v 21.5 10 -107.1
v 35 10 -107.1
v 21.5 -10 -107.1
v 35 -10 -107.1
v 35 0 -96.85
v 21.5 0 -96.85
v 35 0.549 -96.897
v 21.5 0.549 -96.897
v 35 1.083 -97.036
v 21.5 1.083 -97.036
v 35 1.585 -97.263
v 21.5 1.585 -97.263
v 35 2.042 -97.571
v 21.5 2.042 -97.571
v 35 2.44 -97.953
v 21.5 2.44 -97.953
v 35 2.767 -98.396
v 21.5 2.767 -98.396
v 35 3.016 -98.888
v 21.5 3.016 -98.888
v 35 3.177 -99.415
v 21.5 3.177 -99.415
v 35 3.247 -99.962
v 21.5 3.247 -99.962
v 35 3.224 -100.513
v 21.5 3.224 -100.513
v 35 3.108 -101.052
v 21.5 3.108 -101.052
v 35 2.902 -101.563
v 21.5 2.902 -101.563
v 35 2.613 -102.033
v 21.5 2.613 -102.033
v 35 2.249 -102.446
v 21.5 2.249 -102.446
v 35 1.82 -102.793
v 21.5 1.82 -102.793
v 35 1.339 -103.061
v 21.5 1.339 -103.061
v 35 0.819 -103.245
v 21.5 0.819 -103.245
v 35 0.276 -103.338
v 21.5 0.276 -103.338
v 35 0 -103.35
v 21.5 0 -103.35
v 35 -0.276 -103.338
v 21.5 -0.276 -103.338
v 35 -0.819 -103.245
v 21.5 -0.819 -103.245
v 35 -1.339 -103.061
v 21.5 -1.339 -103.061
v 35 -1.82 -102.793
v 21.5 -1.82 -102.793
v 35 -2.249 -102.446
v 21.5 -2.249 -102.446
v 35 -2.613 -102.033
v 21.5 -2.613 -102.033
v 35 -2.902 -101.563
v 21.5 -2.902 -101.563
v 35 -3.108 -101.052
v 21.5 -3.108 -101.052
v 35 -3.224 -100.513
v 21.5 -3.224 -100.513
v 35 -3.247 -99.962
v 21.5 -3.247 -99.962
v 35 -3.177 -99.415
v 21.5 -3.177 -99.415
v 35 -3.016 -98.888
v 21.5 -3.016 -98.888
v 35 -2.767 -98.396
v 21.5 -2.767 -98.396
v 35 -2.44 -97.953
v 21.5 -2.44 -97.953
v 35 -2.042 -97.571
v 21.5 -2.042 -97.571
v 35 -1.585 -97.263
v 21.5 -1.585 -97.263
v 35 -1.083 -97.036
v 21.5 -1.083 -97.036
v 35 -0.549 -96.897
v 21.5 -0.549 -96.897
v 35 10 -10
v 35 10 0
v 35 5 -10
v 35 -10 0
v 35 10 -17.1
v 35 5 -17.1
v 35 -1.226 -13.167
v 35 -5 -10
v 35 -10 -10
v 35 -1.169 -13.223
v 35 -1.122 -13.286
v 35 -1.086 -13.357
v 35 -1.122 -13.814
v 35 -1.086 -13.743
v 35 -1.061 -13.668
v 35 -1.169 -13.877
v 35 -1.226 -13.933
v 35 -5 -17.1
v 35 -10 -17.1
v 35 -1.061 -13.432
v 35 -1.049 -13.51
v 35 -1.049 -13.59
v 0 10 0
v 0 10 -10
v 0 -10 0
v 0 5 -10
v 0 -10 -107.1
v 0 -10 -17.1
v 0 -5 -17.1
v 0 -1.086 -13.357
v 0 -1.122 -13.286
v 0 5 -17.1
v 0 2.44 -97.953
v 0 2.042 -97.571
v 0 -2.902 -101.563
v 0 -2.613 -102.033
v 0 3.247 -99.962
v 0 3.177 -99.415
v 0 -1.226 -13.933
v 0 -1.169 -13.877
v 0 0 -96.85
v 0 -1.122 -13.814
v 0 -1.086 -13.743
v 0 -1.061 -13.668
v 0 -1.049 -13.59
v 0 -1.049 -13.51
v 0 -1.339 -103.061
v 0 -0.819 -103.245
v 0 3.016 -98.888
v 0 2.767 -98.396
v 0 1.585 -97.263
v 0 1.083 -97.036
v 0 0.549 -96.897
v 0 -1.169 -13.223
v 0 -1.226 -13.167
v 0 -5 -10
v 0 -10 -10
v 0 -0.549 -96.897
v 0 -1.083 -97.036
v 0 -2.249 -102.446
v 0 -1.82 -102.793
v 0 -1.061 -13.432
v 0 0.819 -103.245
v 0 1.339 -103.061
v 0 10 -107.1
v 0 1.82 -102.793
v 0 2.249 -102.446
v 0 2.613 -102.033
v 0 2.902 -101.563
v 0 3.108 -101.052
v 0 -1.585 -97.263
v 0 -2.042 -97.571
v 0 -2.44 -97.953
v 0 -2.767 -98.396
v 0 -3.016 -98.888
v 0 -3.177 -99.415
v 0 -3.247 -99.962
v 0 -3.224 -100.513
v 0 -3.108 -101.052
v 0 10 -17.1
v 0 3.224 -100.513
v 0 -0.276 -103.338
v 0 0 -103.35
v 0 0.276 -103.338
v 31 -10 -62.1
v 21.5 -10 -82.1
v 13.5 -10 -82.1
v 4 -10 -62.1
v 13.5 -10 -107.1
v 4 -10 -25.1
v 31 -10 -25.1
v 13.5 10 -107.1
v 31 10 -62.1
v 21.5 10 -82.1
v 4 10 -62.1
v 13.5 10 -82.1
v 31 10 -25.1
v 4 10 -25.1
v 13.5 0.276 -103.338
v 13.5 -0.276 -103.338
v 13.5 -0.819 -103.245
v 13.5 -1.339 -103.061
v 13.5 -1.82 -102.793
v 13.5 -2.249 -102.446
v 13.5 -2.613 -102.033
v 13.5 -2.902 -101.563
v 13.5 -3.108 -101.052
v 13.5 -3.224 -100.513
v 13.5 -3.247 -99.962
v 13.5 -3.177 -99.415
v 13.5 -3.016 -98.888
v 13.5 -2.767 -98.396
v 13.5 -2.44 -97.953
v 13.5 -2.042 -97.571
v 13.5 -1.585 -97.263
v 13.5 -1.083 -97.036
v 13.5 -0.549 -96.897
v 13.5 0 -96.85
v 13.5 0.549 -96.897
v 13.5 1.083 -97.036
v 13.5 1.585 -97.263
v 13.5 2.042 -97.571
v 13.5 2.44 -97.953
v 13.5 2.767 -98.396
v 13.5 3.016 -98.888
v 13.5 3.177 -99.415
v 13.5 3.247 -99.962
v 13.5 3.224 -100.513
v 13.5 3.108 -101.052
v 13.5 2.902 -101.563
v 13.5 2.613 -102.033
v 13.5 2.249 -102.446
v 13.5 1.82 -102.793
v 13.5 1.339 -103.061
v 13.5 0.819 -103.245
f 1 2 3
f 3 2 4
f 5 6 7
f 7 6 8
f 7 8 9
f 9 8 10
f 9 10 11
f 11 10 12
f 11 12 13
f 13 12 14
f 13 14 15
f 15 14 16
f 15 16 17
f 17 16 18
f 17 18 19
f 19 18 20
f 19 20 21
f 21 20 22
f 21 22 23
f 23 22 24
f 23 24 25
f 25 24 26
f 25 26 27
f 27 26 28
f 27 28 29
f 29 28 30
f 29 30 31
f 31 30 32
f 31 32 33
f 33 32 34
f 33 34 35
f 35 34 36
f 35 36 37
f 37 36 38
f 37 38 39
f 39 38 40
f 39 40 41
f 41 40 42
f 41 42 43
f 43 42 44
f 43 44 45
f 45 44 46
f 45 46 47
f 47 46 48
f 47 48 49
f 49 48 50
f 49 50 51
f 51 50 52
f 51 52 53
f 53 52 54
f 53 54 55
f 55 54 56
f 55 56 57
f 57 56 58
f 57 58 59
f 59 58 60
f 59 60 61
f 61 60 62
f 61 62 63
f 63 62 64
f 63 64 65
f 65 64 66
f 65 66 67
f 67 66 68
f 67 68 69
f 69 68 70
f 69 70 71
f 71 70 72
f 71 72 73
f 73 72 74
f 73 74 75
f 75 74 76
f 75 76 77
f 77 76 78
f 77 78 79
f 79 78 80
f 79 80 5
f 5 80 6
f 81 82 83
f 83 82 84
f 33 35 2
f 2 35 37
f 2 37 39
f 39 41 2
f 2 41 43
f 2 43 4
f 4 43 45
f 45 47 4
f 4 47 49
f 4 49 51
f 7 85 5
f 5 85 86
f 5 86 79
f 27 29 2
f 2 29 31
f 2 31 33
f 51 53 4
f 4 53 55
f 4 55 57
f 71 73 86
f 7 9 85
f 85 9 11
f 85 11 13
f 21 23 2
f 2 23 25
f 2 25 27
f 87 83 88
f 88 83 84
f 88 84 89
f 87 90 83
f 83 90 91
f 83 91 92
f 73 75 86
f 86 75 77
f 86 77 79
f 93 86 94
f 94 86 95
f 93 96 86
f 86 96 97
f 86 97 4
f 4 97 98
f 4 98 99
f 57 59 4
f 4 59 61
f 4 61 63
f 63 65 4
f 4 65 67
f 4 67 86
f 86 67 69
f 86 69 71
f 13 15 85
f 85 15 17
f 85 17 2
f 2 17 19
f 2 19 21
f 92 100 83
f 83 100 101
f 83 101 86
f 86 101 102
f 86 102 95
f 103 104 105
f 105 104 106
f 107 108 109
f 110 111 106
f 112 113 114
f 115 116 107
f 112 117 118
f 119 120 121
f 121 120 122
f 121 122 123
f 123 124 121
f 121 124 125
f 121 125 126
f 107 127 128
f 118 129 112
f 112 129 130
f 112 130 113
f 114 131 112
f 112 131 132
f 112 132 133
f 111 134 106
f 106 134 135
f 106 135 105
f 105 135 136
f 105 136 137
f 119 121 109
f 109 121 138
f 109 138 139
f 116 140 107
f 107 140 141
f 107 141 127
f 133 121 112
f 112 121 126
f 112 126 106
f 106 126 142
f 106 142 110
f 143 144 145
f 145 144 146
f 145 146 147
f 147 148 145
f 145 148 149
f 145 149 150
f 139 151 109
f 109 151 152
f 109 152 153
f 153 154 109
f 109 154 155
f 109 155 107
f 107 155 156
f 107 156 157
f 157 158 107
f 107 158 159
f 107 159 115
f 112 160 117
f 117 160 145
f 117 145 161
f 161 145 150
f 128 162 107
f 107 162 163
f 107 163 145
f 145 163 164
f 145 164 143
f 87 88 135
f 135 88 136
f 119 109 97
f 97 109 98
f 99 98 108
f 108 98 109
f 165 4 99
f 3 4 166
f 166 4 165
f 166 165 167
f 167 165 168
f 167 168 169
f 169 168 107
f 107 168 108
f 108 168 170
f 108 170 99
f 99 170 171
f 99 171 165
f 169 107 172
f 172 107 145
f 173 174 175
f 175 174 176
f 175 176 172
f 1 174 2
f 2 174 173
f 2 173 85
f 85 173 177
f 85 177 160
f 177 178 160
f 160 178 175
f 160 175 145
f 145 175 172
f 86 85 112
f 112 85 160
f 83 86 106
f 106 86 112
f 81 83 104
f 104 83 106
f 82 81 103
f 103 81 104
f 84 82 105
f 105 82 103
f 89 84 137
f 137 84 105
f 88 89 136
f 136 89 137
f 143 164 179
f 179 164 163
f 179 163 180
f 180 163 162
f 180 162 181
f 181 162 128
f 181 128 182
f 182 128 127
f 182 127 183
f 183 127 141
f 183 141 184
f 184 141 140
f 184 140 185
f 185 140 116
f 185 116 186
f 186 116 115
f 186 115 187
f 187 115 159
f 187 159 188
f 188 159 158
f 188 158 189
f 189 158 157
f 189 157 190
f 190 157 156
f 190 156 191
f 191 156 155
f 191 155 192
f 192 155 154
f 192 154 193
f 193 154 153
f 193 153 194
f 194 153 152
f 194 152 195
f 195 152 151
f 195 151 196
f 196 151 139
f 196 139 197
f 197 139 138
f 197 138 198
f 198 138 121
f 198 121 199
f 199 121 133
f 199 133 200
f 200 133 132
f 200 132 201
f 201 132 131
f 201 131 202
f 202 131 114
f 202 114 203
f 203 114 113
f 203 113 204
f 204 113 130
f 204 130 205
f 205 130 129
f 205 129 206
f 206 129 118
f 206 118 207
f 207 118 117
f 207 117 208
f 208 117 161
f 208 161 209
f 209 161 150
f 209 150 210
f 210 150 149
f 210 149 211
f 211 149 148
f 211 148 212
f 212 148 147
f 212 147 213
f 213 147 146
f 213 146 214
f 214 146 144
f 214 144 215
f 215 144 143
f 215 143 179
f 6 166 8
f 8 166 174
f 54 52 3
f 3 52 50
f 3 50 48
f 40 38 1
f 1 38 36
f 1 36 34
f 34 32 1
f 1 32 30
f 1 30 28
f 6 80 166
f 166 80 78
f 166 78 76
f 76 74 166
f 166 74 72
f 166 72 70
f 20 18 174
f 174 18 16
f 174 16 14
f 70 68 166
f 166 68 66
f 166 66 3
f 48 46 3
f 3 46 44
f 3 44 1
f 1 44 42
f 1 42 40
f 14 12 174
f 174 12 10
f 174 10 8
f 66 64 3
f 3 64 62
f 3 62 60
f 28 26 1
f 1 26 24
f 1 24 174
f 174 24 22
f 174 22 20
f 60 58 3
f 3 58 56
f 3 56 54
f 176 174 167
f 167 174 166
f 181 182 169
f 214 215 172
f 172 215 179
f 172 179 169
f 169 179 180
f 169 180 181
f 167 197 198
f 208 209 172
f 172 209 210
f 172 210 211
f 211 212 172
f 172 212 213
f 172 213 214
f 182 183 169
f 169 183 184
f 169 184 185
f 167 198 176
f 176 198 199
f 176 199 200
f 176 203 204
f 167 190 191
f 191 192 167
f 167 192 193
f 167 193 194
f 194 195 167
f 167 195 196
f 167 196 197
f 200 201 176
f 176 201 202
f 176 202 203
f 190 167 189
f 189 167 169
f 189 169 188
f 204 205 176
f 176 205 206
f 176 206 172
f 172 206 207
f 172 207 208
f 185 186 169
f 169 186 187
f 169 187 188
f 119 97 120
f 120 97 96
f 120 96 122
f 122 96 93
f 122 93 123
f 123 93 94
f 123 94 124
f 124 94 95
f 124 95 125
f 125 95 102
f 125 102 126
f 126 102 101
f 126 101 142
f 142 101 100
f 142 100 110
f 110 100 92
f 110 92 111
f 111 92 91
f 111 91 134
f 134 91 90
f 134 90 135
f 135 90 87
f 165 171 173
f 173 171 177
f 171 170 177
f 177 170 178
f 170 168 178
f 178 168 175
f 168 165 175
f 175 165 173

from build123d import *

# Parameters (mm, degrees)
CROQUIS1_R              = 3.25
SALIENTE_EXTRUIR1_DEPTH = 35
CORTAR_EXTRUIR1_REACH   = 116.435
CROQUIS2_W              = 8
CROQUIS2_H              = 25
REDONDEO1_R             = 0.5
CROQUIS4_W              = 27
CROQUIS4_H              = 37
CORTAR_EXTRUIR2_DEPTH   = 115.435178158


with BuildPart() as part:
    # Croquis1 → Saliente-Extruir1 (new body)
    with BuildSketch(Plane(origin=(0, 0, 0), x_dir=(0, 0, -1), z_dir=(1, 0, 0))):
        Polygon((0, 10), (0, -10), (10, -10), (10, -5), (13.55, -0.769274746), (17.1, -5), (17.1, -10), (107.1, -10), (107.1, 10), (17.1, 10), (17.1, 5), (10, 5), (10, 10), align=None)
        with Locations((100.1, 0)):
            Circle(CROQUIS1_R, mode=Mode.SUBTRACT)
    extrude(amount=SALIENTE_EXTRUIR1_DEPTH)

    # Croquis2 → Cortar-Extruir1 (cut, up to next)
    with BuildSketch(Plane(origin=(0, 10, 0), x_dir=(1, 0, 0), z_dir=(0, 1, 0)), mode=Mode.PRIVATE) as cortar_extruir1_sk1:
        with Locations((17.5, 94.6)):
            Rectangle(CROQUIS2_W, CROQUIS2_H)
    cortar_extruir1_tool1 = extrude(cortar_extruir1_sk1.sketch, amount=-CORTAR_EXTRUIR1_REACH, mode=Mode.PRIVATE) & part.part
    add(cortar_extruir1_tool1.solids().sort_by_distance((17.5, 10, -94.6))[0], mode=Mode.SUBTRACT)

    # Redondeo1
    redondeo1_edges = [part.edges().sort_by_distance(p)[0] for p in [
        (17.5, -0.769274746, -13.55),
    ]]
    fillet(redondeo1_edges, radius=REDONDEO1_R)

    # Croquis4 → Cortar-Extruir2 (cut, through all)
    with BuildSketch(Plane(origin=(0, 10, 0), x_dir=(1, 0, 0), z_dir=(0, 1, 0))):
        with Locations((17.5, 43.6)):
            Rectangle(CROQUIS4_W, CROQUIS4_H)
    extrude(amount=-CORTAR_EXTRUIR2_DEPTH, mode=Mode.SUBTRACT)


solid = part.part
